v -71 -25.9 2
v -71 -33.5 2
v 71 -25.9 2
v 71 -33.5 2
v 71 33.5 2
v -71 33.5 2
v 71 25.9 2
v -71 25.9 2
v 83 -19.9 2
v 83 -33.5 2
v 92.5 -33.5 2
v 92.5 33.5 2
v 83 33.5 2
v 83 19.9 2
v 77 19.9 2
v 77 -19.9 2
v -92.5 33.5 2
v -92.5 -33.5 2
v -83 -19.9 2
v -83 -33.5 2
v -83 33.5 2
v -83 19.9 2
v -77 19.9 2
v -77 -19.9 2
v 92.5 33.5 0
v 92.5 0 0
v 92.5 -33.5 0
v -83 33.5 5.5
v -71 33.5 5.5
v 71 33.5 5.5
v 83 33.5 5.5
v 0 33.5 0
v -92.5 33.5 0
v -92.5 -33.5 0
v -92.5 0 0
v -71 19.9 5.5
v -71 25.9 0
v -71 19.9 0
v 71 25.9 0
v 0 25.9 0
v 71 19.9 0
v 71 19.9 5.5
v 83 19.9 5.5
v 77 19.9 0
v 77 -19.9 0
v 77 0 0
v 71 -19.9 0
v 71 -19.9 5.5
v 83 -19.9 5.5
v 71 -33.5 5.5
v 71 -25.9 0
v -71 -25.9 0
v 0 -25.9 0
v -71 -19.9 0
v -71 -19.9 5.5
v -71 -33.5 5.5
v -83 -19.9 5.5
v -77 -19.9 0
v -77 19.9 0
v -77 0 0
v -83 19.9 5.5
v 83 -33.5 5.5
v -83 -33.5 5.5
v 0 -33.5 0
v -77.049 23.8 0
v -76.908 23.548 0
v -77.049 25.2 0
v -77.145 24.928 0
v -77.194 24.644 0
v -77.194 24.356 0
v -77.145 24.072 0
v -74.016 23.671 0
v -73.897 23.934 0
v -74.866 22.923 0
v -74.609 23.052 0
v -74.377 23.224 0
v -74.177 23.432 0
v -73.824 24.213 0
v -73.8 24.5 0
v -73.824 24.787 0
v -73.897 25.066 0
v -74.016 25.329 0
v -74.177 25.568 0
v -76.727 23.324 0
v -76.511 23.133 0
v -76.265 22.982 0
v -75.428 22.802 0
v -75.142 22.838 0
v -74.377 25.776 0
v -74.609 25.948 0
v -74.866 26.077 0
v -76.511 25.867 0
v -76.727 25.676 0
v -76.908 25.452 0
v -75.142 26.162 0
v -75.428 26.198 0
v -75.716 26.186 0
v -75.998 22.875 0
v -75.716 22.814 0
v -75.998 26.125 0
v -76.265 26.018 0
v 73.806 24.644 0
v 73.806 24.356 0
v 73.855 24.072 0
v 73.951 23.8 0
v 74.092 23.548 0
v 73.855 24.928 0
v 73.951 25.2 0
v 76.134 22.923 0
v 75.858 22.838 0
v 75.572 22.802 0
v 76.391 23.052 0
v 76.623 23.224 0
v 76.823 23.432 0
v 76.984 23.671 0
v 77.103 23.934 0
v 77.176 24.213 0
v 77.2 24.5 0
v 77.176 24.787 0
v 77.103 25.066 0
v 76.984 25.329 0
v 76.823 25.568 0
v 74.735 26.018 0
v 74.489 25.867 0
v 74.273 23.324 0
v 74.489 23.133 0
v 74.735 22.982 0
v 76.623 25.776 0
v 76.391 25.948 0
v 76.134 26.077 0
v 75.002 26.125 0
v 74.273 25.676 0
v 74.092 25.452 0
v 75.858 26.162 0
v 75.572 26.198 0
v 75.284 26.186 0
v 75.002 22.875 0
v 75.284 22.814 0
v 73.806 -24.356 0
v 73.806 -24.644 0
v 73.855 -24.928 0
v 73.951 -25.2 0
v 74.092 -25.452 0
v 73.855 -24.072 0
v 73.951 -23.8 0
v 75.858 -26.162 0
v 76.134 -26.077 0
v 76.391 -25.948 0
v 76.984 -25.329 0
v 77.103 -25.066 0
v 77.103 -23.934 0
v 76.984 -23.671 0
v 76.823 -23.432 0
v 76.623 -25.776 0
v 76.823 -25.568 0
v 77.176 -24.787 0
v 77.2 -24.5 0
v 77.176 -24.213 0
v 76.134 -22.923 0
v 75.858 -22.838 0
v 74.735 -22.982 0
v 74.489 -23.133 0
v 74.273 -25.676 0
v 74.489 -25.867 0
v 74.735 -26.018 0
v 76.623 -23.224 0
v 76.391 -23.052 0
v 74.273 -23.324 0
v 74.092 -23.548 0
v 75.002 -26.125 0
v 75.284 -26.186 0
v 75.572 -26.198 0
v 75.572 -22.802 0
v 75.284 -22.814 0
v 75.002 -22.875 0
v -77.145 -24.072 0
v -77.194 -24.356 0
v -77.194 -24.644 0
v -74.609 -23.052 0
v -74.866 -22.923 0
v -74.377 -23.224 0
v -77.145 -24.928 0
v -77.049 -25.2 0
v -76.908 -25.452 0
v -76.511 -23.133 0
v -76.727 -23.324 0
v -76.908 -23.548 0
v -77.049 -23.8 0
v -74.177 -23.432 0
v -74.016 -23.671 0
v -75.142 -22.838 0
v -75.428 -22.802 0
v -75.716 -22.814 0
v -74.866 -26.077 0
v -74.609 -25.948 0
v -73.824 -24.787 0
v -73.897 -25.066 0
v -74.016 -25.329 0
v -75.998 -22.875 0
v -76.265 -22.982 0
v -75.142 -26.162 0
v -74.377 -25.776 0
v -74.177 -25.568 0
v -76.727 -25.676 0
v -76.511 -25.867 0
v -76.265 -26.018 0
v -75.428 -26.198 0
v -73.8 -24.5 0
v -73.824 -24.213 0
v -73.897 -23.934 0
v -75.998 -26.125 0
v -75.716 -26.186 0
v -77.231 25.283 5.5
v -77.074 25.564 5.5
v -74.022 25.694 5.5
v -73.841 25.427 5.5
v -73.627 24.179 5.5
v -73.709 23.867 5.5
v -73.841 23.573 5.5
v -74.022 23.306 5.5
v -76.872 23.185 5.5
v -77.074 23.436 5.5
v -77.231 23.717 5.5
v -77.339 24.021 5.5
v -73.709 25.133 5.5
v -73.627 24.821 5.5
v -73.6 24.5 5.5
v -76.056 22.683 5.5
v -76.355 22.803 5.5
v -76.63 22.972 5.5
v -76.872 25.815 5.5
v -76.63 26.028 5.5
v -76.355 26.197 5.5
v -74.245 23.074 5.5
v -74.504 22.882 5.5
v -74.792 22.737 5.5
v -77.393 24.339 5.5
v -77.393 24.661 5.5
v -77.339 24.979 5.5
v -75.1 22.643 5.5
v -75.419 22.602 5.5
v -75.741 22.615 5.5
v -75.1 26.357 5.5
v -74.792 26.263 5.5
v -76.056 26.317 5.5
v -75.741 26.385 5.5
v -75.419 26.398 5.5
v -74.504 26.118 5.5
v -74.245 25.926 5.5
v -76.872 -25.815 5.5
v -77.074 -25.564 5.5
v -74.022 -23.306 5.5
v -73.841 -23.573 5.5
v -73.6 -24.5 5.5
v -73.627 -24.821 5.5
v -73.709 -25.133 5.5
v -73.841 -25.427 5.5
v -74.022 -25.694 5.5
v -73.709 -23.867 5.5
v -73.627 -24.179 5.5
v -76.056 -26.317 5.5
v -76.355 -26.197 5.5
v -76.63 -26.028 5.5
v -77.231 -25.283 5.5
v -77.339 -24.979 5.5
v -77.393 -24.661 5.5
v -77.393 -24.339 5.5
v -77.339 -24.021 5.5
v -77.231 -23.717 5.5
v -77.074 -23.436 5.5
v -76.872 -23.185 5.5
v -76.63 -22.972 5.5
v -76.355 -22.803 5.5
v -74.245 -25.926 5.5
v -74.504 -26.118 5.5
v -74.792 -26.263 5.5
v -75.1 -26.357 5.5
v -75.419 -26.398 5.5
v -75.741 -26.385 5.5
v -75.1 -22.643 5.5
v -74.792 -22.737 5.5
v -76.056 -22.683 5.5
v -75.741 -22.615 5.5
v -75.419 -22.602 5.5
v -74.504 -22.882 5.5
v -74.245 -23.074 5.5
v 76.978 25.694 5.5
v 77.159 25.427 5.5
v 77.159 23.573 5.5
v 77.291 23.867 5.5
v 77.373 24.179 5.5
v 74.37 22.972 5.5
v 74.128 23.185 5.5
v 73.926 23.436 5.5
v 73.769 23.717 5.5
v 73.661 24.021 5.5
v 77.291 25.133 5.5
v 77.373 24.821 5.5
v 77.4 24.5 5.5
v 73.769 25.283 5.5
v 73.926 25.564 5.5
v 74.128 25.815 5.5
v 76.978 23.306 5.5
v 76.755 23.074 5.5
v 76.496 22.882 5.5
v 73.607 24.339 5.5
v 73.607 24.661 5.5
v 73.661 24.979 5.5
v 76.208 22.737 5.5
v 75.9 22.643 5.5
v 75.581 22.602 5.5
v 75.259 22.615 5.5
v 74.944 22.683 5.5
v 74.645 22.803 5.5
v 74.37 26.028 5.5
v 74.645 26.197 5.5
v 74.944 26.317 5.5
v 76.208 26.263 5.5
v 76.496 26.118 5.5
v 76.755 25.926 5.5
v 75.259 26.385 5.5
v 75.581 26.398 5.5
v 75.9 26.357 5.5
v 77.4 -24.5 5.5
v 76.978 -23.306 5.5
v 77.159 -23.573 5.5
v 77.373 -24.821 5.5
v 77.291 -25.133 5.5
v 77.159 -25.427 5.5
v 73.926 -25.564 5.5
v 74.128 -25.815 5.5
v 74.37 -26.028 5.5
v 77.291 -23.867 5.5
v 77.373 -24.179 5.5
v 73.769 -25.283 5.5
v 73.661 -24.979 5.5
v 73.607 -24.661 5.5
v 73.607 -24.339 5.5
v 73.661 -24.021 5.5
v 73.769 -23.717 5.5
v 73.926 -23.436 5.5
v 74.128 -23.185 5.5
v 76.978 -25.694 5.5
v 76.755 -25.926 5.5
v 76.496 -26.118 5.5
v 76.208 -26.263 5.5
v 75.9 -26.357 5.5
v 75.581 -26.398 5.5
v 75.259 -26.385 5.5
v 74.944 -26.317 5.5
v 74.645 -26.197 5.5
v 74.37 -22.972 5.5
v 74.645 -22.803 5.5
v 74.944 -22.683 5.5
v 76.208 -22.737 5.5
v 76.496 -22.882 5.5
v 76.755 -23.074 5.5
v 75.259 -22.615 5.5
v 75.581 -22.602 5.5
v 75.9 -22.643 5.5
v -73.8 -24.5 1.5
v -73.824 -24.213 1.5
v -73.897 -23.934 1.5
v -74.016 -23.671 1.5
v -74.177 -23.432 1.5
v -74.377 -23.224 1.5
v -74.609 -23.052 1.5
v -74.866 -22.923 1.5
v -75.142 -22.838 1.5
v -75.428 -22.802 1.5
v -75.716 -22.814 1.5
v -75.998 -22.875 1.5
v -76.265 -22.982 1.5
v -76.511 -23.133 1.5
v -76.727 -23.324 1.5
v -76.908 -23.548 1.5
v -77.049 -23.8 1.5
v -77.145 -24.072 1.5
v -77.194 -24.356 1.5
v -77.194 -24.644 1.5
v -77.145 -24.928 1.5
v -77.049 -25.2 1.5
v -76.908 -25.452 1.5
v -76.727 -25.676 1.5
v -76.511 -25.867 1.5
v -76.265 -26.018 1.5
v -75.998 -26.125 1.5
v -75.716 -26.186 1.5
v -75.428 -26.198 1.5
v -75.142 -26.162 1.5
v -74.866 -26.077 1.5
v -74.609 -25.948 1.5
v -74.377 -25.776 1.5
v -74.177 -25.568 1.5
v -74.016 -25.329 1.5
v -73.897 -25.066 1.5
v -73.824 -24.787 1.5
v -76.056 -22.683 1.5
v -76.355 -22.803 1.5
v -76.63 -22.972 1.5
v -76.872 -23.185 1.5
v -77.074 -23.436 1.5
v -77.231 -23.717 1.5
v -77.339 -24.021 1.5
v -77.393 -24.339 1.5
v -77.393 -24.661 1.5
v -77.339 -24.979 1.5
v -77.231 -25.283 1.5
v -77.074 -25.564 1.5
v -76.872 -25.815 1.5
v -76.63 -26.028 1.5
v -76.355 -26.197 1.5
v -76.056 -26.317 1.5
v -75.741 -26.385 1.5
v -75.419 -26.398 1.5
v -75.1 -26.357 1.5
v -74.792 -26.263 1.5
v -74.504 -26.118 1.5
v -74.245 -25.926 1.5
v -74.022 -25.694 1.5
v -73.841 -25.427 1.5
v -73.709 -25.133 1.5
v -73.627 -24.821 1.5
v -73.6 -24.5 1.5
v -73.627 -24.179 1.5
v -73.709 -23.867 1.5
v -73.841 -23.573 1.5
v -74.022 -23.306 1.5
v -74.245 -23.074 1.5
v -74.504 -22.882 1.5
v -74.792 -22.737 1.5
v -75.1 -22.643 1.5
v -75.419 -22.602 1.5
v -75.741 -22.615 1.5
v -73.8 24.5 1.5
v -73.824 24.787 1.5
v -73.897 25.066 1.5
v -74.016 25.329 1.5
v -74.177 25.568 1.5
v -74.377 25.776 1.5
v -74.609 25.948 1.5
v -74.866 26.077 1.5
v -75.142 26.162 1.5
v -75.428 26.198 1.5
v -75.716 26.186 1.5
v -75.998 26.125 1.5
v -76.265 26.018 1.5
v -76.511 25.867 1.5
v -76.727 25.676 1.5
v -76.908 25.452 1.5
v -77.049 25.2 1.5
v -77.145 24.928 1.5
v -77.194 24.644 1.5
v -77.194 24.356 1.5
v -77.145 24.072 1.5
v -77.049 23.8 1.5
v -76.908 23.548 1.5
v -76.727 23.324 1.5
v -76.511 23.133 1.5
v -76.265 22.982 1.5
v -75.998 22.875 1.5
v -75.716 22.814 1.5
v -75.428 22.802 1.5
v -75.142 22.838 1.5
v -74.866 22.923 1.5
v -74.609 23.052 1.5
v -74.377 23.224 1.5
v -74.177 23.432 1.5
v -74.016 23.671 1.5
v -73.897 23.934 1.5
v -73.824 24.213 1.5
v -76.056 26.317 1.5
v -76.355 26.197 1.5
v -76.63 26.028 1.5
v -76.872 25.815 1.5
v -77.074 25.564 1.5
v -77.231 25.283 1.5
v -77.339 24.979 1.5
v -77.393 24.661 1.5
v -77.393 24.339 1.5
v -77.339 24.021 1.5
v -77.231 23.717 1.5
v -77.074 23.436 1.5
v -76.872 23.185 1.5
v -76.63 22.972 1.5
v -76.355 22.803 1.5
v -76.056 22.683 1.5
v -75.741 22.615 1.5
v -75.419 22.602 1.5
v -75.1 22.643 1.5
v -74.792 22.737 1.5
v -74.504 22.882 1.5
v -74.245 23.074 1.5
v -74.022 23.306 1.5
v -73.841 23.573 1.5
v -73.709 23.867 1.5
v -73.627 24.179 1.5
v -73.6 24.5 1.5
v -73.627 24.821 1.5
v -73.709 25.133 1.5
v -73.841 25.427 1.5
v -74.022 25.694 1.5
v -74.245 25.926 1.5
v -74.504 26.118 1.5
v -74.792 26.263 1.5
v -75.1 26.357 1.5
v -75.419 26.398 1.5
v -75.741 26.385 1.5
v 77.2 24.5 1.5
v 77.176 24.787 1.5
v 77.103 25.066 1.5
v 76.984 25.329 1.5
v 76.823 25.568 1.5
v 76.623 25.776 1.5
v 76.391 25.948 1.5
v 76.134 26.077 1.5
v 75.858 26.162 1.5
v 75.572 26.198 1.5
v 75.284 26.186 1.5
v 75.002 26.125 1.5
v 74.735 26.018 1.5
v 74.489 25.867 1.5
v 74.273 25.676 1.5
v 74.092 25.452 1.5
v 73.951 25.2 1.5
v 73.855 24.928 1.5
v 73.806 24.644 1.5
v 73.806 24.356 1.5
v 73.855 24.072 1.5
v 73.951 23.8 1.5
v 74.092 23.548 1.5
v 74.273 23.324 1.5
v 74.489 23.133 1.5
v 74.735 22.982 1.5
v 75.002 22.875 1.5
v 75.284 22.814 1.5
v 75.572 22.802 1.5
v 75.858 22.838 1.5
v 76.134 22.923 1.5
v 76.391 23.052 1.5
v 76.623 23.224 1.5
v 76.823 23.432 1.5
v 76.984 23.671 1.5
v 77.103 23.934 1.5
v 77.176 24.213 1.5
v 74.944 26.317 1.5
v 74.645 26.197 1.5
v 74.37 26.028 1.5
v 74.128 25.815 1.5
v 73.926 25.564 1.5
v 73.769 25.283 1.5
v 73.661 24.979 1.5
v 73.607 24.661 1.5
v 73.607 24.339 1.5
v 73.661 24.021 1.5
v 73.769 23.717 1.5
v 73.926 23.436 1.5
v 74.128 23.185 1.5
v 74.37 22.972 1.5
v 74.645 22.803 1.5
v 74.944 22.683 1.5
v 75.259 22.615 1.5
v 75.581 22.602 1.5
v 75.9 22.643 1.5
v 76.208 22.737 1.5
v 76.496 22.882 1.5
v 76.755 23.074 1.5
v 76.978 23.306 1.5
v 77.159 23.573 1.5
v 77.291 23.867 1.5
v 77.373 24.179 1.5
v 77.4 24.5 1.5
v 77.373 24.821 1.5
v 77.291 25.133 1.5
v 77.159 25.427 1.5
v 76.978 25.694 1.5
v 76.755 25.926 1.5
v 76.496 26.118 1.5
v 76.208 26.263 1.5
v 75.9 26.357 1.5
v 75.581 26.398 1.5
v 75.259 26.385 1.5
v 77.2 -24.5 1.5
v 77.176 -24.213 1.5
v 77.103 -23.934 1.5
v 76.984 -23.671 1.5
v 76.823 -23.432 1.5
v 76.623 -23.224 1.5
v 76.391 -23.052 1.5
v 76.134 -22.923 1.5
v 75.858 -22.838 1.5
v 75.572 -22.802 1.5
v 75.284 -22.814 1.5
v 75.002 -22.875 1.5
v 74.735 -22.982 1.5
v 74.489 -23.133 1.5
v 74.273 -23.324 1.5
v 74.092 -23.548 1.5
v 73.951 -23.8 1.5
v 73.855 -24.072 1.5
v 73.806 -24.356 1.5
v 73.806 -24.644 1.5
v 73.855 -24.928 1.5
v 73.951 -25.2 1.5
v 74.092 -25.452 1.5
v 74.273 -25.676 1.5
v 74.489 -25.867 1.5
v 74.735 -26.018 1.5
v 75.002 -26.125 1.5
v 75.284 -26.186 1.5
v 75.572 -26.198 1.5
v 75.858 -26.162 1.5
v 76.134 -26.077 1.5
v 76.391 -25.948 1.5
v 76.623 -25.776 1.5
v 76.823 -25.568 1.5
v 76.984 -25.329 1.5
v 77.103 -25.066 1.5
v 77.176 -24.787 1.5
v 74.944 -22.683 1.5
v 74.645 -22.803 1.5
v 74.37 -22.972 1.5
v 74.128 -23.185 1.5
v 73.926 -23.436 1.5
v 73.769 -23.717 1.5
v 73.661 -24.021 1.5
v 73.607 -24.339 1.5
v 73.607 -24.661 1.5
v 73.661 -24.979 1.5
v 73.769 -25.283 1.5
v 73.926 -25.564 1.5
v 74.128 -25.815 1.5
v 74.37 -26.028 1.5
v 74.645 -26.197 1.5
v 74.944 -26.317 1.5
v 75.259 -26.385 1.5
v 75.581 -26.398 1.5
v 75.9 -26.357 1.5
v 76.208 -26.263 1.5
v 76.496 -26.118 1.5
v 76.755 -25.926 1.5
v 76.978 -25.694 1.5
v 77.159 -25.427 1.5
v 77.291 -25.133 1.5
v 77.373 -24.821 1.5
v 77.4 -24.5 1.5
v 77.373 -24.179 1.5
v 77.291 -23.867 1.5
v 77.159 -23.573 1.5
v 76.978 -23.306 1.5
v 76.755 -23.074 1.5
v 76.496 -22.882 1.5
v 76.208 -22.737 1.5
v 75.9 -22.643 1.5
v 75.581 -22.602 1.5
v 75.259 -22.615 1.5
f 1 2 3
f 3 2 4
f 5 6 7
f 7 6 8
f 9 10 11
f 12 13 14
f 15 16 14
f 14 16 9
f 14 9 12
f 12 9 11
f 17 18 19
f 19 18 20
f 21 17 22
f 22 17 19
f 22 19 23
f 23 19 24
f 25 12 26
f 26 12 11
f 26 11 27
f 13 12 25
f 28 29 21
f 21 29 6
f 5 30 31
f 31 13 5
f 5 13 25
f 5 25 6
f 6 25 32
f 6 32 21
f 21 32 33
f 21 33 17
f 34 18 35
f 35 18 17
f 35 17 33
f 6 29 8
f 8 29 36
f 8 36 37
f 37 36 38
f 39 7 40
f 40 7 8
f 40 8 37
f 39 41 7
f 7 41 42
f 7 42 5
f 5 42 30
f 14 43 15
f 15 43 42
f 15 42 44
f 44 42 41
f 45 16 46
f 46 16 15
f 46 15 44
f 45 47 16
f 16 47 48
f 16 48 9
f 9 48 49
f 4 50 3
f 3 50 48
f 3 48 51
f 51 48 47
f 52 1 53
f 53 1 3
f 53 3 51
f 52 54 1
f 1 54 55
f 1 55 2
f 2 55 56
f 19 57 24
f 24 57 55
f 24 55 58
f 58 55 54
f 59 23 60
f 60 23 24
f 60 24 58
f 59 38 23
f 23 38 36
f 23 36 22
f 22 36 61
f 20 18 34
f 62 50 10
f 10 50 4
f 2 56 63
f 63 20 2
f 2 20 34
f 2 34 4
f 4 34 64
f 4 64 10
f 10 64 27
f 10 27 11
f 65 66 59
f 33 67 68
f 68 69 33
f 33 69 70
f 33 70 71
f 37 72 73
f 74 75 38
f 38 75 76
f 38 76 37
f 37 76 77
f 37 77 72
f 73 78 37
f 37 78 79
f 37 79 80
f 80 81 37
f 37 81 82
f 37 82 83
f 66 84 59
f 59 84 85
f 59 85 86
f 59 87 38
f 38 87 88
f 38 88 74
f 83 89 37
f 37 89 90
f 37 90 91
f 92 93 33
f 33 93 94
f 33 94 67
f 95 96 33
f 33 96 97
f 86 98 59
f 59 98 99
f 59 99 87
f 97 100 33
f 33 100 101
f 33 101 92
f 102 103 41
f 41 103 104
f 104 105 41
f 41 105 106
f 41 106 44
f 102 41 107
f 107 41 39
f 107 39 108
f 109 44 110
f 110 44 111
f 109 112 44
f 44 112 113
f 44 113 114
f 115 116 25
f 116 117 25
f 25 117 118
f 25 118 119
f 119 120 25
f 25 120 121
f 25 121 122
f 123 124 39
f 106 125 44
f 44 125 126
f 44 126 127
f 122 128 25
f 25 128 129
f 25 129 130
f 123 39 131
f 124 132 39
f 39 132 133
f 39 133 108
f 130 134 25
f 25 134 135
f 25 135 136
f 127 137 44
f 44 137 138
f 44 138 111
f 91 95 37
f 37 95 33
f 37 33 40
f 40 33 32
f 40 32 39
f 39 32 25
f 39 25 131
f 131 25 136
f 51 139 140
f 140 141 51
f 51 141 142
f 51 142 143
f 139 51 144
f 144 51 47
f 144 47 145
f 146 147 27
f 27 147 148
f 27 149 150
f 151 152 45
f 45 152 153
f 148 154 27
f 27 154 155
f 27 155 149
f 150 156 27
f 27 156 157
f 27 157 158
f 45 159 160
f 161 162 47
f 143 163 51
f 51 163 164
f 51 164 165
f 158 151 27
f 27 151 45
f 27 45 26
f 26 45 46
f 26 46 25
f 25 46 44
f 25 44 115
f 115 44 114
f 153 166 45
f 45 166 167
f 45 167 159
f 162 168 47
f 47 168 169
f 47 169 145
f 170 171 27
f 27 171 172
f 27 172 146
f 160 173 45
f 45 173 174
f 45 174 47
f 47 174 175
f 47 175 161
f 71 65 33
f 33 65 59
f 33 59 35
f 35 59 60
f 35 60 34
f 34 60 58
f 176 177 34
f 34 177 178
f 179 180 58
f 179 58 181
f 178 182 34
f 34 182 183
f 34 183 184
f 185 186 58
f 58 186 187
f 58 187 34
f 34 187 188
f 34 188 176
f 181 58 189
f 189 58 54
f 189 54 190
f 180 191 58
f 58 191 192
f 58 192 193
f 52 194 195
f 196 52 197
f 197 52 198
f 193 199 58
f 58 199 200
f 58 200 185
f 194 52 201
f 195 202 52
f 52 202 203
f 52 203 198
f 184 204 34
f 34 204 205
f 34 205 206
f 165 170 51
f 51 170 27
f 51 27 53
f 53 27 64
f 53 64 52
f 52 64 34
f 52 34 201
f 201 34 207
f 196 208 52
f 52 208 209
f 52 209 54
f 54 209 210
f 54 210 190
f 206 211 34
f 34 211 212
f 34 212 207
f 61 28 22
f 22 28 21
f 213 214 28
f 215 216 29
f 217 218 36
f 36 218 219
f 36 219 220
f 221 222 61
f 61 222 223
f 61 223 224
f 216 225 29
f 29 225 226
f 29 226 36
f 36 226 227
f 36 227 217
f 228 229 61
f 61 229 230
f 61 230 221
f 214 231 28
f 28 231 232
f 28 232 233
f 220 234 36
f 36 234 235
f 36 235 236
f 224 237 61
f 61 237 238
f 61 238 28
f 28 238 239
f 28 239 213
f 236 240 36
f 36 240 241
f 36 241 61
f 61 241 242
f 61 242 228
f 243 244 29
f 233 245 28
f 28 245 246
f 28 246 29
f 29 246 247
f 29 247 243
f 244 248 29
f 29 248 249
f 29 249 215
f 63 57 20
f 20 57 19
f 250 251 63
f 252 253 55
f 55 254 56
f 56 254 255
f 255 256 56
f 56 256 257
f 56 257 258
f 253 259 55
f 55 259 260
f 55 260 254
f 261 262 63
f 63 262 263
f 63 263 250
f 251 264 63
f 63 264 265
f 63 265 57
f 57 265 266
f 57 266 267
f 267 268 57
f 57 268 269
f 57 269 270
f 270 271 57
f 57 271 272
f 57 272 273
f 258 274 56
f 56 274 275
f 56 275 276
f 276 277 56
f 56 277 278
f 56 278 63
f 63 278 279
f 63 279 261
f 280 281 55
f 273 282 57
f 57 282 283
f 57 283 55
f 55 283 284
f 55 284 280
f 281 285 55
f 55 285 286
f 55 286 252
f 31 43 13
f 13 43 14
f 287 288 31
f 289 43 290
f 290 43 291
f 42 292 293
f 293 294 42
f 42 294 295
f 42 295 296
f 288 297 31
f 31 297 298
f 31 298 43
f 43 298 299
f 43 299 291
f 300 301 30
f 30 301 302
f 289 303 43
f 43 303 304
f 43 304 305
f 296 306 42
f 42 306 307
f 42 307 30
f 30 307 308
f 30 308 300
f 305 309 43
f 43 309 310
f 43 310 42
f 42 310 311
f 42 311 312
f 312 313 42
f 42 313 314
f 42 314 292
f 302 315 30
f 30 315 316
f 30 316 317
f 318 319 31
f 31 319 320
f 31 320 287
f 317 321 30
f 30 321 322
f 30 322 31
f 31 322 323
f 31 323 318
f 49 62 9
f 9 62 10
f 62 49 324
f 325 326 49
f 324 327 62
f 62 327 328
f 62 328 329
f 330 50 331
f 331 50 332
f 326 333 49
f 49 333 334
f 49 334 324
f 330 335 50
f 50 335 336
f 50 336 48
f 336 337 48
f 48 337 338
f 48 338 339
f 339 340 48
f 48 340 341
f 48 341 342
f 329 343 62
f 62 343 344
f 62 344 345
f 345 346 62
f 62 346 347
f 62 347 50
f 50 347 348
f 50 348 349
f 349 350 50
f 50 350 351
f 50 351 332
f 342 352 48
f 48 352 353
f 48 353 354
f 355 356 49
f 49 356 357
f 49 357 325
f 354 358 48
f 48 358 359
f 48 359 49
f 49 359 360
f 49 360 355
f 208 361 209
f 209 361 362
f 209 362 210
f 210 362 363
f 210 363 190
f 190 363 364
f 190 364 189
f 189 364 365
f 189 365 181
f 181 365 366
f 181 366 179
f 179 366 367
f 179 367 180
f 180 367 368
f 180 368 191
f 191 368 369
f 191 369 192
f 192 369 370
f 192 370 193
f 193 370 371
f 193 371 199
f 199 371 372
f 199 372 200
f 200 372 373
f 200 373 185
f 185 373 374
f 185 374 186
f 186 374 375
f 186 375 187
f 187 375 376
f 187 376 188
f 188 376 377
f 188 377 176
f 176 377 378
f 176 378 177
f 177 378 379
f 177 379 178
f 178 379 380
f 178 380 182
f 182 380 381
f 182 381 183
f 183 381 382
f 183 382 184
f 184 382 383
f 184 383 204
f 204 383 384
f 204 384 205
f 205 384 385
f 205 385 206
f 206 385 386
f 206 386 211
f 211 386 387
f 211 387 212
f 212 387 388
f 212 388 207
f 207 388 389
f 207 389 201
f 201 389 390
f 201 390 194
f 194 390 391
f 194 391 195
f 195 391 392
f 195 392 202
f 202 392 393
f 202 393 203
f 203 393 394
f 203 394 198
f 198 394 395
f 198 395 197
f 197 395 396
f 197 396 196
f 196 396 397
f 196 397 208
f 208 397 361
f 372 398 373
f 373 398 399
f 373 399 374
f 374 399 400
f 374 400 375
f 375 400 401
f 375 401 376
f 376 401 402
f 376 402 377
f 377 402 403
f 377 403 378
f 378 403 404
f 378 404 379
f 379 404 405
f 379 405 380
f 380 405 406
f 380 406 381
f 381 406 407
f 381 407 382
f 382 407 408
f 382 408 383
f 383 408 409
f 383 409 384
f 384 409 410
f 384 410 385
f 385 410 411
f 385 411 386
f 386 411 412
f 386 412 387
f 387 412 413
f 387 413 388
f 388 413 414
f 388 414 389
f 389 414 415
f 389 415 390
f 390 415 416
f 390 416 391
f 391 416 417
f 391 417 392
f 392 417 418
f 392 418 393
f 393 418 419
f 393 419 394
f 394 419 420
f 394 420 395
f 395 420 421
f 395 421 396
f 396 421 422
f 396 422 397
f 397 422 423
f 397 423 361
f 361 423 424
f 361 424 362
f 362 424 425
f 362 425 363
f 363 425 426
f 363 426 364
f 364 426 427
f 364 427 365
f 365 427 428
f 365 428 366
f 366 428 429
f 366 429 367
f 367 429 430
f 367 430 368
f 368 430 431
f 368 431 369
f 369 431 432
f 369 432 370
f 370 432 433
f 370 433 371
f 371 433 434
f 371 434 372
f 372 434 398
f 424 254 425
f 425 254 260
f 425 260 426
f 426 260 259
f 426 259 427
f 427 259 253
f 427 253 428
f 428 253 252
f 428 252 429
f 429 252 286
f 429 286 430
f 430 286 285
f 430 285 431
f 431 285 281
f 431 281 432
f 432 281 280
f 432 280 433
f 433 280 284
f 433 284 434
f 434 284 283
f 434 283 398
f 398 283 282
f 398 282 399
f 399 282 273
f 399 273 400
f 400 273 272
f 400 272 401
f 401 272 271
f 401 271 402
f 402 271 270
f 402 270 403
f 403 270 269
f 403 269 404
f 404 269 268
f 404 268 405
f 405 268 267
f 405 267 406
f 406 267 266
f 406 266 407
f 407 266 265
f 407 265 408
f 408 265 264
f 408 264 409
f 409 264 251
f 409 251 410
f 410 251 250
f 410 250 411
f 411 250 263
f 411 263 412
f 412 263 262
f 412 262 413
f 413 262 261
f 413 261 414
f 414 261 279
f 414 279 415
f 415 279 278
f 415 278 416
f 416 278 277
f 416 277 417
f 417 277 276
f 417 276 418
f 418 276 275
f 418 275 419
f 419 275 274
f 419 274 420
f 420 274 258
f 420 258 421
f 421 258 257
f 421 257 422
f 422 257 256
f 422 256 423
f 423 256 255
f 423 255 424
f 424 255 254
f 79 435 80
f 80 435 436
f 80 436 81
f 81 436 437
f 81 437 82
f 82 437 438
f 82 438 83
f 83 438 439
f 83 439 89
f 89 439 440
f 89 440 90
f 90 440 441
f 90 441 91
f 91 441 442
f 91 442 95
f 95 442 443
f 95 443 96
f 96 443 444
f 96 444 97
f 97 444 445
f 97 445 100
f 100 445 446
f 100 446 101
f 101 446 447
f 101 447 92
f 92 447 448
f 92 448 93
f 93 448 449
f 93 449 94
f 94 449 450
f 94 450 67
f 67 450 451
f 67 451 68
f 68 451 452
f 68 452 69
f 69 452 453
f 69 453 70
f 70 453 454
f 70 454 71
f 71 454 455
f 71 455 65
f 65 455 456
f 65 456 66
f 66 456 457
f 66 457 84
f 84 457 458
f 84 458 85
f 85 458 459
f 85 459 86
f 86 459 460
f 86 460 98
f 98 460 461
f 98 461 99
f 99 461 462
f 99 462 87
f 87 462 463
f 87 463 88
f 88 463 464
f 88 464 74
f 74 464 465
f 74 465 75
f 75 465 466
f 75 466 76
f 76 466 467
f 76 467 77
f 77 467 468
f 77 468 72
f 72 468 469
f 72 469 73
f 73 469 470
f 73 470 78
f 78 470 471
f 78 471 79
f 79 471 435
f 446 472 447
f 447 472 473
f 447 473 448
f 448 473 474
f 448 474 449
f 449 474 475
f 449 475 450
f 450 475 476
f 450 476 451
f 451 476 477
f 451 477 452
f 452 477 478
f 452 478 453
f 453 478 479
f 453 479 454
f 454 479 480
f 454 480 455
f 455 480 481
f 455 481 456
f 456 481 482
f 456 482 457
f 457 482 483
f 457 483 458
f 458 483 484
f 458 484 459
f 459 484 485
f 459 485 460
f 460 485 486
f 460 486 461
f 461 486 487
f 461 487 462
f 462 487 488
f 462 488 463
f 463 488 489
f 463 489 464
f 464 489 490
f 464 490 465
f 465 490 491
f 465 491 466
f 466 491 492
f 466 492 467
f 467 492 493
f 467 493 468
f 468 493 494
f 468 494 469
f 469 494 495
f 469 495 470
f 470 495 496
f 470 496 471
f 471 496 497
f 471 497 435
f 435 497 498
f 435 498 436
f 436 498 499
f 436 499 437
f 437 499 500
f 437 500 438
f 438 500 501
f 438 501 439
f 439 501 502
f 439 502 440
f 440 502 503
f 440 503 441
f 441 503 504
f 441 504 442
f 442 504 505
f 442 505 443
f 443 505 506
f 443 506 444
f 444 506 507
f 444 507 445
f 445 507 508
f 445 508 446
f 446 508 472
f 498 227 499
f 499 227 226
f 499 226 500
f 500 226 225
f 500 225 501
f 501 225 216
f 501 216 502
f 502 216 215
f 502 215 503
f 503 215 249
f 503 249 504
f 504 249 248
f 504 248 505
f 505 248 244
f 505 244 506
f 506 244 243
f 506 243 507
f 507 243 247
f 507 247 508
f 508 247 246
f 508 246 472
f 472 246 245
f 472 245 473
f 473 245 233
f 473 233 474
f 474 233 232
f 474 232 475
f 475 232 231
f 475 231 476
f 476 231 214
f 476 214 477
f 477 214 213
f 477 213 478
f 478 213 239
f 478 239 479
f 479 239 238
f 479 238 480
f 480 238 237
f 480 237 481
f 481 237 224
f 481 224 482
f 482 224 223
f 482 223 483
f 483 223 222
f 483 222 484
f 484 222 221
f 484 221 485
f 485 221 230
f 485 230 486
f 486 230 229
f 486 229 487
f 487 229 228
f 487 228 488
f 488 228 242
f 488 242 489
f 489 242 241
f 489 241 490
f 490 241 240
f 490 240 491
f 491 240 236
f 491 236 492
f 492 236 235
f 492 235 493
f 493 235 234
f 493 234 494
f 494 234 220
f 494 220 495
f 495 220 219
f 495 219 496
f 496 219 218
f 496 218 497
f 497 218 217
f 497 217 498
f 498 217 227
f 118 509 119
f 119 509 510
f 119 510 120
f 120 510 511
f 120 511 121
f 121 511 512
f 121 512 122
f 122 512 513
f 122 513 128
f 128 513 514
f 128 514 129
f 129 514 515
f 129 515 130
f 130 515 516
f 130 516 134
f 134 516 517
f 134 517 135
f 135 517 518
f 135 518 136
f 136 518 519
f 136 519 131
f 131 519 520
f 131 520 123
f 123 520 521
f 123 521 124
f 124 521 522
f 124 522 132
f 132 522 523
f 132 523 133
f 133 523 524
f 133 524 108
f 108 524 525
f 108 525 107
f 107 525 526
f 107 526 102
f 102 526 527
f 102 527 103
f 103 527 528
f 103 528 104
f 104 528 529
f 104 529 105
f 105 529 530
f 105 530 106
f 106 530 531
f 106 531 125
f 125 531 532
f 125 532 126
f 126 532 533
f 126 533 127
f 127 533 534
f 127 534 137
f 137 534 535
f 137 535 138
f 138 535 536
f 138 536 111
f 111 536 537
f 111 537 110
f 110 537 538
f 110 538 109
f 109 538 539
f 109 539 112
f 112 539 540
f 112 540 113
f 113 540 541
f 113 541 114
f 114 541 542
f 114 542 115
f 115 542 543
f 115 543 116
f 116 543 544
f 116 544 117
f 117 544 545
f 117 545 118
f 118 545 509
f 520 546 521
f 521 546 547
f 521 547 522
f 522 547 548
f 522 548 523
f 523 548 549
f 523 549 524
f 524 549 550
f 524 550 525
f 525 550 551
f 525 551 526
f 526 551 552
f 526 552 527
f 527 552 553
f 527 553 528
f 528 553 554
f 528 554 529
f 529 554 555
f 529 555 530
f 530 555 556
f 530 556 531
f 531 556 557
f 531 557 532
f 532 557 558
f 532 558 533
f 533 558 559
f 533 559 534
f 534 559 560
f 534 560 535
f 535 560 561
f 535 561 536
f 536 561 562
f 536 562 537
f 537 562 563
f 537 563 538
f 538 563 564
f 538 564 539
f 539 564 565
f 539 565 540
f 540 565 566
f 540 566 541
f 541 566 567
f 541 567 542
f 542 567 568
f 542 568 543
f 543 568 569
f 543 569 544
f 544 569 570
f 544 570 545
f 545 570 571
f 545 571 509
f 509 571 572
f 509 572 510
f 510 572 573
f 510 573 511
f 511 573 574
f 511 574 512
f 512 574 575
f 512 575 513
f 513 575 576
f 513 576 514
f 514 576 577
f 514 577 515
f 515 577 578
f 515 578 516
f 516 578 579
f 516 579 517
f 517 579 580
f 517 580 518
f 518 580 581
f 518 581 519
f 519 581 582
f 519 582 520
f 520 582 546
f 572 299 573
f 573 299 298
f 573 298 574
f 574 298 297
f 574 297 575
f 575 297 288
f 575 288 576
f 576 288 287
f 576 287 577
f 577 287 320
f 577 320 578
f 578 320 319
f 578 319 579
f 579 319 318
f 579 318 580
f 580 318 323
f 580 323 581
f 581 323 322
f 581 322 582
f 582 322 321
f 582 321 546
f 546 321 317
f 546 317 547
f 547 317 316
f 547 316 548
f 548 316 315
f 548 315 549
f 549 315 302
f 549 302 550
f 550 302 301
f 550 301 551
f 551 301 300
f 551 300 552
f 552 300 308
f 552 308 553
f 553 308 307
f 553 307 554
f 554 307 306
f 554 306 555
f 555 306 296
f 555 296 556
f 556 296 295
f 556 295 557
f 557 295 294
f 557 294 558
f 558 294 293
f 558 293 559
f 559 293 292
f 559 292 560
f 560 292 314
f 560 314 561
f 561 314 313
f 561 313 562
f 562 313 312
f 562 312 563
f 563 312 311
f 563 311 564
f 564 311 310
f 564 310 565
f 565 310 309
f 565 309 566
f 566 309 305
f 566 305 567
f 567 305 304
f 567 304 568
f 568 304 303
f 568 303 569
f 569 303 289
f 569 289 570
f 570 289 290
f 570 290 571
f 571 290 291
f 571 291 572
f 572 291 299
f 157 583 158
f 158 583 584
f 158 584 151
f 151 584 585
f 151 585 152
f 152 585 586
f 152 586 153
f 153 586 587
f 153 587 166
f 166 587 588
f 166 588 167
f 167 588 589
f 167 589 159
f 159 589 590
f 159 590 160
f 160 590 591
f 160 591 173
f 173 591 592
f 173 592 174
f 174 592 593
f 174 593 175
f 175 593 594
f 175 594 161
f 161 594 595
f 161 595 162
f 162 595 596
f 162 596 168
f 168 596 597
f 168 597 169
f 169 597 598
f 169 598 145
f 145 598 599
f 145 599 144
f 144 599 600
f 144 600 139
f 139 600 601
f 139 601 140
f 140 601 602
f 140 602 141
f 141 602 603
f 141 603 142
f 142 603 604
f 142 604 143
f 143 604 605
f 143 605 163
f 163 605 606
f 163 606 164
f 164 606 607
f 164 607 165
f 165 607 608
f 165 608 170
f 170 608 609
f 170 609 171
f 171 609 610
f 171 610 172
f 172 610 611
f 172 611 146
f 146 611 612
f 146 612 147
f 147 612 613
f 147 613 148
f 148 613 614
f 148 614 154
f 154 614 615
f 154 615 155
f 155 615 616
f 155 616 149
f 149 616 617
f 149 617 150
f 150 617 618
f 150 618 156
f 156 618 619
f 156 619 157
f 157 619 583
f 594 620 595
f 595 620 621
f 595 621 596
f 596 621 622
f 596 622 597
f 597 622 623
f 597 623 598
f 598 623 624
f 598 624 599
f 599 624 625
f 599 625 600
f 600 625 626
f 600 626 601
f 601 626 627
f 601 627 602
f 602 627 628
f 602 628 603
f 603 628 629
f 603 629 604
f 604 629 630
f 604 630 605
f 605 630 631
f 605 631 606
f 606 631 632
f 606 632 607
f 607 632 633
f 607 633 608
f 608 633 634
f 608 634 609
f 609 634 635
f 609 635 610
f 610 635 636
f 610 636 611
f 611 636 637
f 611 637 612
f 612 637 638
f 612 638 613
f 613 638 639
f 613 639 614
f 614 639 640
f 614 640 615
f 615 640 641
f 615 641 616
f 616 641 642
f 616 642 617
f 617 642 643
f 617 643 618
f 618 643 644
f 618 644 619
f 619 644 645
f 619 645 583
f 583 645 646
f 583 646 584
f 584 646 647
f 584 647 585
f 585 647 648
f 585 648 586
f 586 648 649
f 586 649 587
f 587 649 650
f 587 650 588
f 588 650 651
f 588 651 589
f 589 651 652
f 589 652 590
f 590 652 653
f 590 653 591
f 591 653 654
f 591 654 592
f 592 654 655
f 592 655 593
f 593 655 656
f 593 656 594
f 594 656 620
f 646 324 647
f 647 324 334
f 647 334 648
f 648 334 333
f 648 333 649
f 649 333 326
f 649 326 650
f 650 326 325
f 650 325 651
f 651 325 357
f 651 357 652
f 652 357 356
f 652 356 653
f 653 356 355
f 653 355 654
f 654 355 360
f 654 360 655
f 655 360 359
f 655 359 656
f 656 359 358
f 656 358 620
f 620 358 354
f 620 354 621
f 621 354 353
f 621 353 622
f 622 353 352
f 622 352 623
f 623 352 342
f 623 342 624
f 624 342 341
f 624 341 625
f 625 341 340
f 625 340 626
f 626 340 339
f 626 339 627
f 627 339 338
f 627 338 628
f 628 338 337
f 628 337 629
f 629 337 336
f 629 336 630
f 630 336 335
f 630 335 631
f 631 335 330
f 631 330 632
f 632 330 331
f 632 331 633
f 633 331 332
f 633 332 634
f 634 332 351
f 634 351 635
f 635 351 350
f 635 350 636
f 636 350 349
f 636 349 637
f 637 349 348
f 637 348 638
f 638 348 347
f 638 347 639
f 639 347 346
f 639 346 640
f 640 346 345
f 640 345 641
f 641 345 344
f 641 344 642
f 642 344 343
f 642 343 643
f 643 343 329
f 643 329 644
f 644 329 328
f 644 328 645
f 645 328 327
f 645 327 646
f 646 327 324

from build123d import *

# Parameters (mm, degrees)
SKICA1_W                                          = 185
SKICA1_H                                          = 67
SKICA1_W_2                                        = 154
SKICA1_H_2                                        = 51.8
SKICA1_W_3                                        = 6
SKICA1_H_3                                        = 6
P_IDAT_VYSUNUT_M1_DEPTH                           = 2
SKICA2_W                                          = 12
SKICA2_H                                          = 13.6
P_IDAT_VYSUNUT_M2_DEPTH                           = 3.5
V_LCOV_ZAHLOUBEN_PRO_M3_ROUBY_S_HLAVO_D           = 3.4
V_LCOV_ZAHLOUBEN_PRO_M3_ROUBY_S_HLAVO_CBORE_D     = 3.8
V_LCOV_ZAHLOUBEN_PRO_M3_ROUBY_S_HLAVO_CBORE_DEPTH = 4


with BuildPart() as part:
    # Skica1 → Přidat vysunutím1 (new body)
    with BuildSketch(Plane.XY):
        Rectangle(SKICA1_W, SKICA1_H)
        Rectangle(SKICA1_W_2, SKICA1_H_2, mode=Mode.SUBTRACT)
        with Locations((-74, 22.9)):
            Rectangle(SKICA1_W_3, SKICA1_H_3)
        with Locations((-74, -22.9)):
            Rectangle(SKICA1_W_3, SKICA1_H_3)
        with Locations((74, -22.9)):
            Rectangle(SKICA1_W_3, SKICA1_H_3)
        with Locations((74, 22.9)):
            Rectangle(SKICA1_W_3, SKICA1_H_3)
    extrude(amount=P_IDAT_VYSUNUT_M1_DEPTH)

    # Skica2 → Přidat vysunutím2 (add)
    with BuildSketch(Plane.XY.offset(2)):
        with Locations((77, 26.7)):
            Rectangle(SKICA2_W, SKICA2_H)
        with Locations((-77, 26.7)):
            Rectangle(SKICA2_W, SKICA2_H)
        with Locations((-77, -26.7)):
            Rectangle(SKICA2_W, SKICA2_H)
        with Locations((77, -26.7)):
            Rectangle(SKICA2_W, SKICA2_H)
    extrude(amount=P_IDAT_VYSUNUT_M2_DEPTH)

    # Válcové zahloubení pro M3 šrouby s hlavou s vnitřním vybráním1 (through all)
    with Locations(Plane.XY.offset(5.5)):
        with Locations((75.5, -24.5), (75.5, 24.5), (-75.5, 24.5), (-75.5, -24.5)):
            CounterBoreHole(V_LCOV_ZAHLOUBEN_PRO_M3_ROUBY_S_HLAVO_D / 2, V_LCOV_ZAHLOUBEN_PRO_M3_ROUBY_S_HLAVO_CBORE_D / 2, V_LCOV_ZAHLOUBEN_PRO_M3_ROUBY_S_HLAVO_CBORE_DEPTH)


solid = part.part
